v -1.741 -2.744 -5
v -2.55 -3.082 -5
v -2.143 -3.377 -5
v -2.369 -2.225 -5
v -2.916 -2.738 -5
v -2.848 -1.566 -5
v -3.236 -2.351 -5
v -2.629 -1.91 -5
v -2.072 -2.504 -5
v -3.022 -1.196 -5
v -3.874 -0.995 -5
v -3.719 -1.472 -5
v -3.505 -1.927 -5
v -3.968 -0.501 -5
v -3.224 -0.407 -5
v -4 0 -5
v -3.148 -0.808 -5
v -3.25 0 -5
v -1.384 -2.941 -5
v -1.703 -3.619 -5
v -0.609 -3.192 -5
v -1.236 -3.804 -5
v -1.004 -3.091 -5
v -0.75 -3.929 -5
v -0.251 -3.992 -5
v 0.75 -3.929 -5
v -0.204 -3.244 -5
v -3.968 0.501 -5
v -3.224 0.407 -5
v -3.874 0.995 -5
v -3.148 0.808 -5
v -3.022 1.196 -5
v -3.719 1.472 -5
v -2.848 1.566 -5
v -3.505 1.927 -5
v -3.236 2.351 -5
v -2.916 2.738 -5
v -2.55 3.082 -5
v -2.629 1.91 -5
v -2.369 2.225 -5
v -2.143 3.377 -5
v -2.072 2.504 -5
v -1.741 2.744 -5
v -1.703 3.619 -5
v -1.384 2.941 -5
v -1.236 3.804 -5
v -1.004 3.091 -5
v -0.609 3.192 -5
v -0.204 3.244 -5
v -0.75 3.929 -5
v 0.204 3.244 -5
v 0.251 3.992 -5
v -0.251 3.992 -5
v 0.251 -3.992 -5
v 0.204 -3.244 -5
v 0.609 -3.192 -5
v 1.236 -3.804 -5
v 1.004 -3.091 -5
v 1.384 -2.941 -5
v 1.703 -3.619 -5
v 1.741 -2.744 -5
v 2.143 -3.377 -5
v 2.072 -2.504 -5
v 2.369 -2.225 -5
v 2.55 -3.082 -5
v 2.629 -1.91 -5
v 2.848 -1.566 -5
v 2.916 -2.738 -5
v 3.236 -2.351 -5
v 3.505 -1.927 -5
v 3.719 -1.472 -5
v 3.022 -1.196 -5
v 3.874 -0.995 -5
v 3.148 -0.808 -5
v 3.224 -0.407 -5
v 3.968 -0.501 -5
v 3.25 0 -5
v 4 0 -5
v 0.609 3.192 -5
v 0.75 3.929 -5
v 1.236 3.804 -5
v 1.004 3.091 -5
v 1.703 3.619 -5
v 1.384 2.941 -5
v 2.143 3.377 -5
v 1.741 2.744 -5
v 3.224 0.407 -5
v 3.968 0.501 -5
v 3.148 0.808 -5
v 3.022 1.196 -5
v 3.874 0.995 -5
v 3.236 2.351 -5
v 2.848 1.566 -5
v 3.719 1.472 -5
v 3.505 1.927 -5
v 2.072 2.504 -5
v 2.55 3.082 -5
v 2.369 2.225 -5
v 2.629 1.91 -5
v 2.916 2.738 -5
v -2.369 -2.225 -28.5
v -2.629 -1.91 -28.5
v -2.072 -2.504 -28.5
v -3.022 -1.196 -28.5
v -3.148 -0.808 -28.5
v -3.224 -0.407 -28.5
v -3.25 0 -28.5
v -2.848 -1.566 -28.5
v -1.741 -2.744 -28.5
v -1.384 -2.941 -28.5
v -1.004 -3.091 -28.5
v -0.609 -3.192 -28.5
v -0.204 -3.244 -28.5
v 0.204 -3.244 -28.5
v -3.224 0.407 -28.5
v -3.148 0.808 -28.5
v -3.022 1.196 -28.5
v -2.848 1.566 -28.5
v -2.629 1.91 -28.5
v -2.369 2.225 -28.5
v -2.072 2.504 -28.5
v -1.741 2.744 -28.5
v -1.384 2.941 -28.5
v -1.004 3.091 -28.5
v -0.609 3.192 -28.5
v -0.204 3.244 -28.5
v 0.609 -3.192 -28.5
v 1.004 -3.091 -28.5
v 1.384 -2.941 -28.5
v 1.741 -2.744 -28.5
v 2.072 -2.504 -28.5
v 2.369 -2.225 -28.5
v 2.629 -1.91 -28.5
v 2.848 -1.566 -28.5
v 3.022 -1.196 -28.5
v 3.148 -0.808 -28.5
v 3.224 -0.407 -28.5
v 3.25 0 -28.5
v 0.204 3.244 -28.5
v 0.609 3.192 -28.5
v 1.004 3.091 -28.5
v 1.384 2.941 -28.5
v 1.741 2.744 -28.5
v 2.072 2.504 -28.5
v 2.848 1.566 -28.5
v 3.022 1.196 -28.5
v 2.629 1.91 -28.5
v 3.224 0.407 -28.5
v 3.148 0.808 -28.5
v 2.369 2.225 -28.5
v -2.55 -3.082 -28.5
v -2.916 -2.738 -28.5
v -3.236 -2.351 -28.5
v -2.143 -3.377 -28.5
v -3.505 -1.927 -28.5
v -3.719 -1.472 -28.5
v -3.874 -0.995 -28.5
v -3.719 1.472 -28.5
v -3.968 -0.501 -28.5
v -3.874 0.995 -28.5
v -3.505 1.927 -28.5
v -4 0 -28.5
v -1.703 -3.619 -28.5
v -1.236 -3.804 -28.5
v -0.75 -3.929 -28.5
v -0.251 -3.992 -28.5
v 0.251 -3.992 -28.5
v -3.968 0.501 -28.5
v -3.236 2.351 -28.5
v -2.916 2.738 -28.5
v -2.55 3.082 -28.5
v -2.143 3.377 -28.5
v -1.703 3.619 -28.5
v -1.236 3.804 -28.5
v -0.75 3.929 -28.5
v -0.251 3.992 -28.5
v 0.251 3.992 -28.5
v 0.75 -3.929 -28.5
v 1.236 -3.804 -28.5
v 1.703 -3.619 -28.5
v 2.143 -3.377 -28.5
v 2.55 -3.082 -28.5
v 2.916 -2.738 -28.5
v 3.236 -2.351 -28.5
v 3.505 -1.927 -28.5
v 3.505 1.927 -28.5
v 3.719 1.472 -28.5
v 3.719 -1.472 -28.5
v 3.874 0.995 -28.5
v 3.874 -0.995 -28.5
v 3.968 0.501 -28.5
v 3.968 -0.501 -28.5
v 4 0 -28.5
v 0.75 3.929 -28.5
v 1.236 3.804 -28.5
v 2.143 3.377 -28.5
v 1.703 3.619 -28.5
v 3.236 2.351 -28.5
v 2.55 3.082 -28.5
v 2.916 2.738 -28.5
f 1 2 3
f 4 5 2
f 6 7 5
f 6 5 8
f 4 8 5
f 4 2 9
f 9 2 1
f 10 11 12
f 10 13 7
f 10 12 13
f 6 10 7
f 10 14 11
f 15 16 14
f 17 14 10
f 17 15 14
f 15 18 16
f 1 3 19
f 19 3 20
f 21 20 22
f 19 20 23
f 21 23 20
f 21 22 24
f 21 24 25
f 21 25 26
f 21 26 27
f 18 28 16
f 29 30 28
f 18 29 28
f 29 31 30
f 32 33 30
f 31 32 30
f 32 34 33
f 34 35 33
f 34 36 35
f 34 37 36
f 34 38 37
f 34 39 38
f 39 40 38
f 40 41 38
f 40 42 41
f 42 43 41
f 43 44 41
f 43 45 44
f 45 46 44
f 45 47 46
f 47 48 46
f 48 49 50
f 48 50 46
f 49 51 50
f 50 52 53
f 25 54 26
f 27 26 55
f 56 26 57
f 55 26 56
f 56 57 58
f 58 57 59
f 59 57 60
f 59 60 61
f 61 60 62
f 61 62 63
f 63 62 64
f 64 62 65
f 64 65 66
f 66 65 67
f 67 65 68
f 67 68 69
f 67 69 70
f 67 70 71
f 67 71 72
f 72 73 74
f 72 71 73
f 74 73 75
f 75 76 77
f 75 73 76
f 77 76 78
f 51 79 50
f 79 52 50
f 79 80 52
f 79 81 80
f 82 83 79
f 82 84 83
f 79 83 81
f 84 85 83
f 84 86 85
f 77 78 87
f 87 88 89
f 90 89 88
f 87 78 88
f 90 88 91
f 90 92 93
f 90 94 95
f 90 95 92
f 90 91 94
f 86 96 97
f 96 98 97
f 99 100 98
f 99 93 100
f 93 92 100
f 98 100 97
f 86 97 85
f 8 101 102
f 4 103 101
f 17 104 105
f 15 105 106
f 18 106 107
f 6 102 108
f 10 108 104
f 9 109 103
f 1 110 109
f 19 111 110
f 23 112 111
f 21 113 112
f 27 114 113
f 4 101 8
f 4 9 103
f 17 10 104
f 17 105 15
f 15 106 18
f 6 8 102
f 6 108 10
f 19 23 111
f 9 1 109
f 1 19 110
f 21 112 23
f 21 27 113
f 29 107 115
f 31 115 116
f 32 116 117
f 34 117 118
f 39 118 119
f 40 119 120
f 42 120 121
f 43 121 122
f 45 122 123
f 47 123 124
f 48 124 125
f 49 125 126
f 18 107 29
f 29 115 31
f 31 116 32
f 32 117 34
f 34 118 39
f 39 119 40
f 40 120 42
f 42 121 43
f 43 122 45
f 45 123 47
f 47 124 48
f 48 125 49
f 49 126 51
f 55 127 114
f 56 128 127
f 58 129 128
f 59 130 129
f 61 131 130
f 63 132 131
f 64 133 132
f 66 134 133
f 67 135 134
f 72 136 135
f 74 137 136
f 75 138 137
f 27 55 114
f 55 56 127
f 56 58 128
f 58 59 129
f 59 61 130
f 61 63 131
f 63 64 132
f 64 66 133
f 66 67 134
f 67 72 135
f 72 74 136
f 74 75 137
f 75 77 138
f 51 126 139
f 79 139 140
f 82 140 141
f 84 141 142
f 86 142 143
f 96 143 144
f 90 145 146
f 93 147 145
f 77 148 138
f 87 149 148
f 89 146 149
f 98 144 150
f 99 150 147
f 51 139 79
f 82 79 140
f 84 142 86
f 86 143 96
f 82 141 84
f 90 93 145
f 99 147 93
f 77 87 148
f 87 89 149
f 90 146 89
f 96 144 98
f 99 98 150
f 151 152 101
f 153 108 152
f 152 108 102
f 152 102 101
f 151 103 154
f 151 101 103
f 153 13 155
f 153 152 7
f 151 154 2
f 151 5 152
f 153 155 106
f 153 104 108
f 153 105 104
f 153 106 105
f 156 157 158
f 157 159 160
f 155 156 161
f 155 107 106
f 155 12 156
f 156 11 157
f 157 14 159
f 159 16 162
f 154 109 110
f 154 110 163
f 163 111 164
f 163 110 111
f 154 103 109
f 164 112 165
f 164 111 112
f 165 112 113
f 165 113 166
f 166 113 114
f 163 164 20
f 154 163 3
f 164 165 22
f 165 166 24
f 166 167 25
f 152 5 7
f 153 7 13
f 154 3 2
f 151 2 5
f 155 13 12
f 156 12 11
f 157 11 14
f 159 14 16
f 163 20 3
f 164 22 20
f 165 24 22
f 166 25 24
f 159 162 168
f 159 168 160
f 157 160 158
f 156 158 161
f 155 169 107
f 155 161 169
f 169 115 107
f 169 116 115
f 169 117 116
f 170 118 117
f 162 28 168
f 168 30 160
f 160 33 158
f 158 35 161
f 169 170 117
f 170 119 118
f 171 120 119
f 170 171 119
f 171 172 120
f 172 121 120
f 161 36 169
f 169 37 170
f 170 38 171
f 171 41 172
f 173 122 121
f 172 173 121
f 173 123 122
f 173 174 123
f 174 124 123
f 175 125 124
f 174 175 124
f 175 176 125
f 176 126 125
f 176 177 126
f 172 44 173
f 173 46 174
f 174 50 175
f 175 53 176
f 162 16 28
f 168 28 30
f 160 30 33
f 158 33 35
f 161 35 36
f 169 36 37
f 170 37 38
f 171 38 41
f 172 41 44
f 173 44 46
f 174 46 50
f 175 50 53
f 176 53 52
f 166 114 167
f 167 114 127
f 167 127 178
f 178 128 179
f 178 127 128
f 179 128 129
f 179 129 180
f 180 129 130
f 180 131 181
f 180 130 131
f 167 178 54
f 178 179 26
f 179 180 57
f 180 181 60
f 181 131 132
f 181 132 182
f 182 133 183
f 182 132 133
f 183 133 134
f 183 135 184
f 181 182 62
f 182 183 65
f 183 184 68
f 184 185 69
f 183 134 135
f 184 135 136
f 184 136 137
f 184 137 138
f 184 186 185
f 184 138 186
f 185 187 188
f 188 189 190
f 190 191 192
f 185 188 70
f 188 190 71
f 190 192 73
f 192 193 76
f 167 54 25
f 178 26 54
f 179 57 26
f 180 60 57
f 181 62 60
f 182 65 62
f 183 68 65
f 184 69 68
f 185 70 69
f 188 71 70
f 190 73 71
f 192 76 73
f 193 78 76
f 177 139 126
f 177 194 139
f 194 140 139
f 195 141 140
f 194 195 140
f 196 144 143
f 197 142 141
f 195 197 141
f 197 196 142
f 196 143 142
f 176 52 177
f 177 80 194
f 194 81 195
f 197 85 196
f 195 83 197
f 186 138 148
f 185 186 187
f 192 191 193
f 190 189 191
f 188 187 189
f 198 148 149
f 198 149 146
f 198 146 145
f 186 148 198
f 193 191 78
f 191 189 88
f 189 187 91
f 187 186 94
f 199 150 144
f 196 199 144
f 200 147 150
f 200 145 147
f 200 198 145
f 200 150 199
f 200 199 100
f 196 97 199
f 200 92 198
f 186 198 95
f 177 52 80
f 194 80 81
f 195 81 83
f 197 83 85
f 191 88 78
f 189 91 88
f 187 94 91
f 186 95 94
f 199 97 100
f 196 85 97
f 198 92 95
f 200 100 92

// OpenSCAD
$fn = 50;

difference() {
	union() {
		translate(v = [0, 0, -28.5]) {
			cylinder(h = 31.5, r = 4.0);
		}
	}
	union() {
		translate(v = [0, 0, 0]) {
			rotate(a = [0, 0, 0]) {
				difference() {
					union() {
						translate(v = [0, 0, -5]) {
							linear_extrude(height = 5) {
								polygon(points = [[5.914249999999999, 0.0], [2.957125, 5.1218907443321156], [-2.9571249999999982, 5.1218907443321156], [-5.914249999999999, 7.242867331857232e-16], [-2.9571250000000022, -5.121890744332115], [2.9571249999999956, -5.121890744332118]]);
							}
						}
					}
					union();
				}
			}
		}
		#cylinder(h = 3, r = 6.25);
		#translate(v = [0, 0, -100.0]) {
			cylinder(h = 200, r = 3.25);
		}
	}
}
